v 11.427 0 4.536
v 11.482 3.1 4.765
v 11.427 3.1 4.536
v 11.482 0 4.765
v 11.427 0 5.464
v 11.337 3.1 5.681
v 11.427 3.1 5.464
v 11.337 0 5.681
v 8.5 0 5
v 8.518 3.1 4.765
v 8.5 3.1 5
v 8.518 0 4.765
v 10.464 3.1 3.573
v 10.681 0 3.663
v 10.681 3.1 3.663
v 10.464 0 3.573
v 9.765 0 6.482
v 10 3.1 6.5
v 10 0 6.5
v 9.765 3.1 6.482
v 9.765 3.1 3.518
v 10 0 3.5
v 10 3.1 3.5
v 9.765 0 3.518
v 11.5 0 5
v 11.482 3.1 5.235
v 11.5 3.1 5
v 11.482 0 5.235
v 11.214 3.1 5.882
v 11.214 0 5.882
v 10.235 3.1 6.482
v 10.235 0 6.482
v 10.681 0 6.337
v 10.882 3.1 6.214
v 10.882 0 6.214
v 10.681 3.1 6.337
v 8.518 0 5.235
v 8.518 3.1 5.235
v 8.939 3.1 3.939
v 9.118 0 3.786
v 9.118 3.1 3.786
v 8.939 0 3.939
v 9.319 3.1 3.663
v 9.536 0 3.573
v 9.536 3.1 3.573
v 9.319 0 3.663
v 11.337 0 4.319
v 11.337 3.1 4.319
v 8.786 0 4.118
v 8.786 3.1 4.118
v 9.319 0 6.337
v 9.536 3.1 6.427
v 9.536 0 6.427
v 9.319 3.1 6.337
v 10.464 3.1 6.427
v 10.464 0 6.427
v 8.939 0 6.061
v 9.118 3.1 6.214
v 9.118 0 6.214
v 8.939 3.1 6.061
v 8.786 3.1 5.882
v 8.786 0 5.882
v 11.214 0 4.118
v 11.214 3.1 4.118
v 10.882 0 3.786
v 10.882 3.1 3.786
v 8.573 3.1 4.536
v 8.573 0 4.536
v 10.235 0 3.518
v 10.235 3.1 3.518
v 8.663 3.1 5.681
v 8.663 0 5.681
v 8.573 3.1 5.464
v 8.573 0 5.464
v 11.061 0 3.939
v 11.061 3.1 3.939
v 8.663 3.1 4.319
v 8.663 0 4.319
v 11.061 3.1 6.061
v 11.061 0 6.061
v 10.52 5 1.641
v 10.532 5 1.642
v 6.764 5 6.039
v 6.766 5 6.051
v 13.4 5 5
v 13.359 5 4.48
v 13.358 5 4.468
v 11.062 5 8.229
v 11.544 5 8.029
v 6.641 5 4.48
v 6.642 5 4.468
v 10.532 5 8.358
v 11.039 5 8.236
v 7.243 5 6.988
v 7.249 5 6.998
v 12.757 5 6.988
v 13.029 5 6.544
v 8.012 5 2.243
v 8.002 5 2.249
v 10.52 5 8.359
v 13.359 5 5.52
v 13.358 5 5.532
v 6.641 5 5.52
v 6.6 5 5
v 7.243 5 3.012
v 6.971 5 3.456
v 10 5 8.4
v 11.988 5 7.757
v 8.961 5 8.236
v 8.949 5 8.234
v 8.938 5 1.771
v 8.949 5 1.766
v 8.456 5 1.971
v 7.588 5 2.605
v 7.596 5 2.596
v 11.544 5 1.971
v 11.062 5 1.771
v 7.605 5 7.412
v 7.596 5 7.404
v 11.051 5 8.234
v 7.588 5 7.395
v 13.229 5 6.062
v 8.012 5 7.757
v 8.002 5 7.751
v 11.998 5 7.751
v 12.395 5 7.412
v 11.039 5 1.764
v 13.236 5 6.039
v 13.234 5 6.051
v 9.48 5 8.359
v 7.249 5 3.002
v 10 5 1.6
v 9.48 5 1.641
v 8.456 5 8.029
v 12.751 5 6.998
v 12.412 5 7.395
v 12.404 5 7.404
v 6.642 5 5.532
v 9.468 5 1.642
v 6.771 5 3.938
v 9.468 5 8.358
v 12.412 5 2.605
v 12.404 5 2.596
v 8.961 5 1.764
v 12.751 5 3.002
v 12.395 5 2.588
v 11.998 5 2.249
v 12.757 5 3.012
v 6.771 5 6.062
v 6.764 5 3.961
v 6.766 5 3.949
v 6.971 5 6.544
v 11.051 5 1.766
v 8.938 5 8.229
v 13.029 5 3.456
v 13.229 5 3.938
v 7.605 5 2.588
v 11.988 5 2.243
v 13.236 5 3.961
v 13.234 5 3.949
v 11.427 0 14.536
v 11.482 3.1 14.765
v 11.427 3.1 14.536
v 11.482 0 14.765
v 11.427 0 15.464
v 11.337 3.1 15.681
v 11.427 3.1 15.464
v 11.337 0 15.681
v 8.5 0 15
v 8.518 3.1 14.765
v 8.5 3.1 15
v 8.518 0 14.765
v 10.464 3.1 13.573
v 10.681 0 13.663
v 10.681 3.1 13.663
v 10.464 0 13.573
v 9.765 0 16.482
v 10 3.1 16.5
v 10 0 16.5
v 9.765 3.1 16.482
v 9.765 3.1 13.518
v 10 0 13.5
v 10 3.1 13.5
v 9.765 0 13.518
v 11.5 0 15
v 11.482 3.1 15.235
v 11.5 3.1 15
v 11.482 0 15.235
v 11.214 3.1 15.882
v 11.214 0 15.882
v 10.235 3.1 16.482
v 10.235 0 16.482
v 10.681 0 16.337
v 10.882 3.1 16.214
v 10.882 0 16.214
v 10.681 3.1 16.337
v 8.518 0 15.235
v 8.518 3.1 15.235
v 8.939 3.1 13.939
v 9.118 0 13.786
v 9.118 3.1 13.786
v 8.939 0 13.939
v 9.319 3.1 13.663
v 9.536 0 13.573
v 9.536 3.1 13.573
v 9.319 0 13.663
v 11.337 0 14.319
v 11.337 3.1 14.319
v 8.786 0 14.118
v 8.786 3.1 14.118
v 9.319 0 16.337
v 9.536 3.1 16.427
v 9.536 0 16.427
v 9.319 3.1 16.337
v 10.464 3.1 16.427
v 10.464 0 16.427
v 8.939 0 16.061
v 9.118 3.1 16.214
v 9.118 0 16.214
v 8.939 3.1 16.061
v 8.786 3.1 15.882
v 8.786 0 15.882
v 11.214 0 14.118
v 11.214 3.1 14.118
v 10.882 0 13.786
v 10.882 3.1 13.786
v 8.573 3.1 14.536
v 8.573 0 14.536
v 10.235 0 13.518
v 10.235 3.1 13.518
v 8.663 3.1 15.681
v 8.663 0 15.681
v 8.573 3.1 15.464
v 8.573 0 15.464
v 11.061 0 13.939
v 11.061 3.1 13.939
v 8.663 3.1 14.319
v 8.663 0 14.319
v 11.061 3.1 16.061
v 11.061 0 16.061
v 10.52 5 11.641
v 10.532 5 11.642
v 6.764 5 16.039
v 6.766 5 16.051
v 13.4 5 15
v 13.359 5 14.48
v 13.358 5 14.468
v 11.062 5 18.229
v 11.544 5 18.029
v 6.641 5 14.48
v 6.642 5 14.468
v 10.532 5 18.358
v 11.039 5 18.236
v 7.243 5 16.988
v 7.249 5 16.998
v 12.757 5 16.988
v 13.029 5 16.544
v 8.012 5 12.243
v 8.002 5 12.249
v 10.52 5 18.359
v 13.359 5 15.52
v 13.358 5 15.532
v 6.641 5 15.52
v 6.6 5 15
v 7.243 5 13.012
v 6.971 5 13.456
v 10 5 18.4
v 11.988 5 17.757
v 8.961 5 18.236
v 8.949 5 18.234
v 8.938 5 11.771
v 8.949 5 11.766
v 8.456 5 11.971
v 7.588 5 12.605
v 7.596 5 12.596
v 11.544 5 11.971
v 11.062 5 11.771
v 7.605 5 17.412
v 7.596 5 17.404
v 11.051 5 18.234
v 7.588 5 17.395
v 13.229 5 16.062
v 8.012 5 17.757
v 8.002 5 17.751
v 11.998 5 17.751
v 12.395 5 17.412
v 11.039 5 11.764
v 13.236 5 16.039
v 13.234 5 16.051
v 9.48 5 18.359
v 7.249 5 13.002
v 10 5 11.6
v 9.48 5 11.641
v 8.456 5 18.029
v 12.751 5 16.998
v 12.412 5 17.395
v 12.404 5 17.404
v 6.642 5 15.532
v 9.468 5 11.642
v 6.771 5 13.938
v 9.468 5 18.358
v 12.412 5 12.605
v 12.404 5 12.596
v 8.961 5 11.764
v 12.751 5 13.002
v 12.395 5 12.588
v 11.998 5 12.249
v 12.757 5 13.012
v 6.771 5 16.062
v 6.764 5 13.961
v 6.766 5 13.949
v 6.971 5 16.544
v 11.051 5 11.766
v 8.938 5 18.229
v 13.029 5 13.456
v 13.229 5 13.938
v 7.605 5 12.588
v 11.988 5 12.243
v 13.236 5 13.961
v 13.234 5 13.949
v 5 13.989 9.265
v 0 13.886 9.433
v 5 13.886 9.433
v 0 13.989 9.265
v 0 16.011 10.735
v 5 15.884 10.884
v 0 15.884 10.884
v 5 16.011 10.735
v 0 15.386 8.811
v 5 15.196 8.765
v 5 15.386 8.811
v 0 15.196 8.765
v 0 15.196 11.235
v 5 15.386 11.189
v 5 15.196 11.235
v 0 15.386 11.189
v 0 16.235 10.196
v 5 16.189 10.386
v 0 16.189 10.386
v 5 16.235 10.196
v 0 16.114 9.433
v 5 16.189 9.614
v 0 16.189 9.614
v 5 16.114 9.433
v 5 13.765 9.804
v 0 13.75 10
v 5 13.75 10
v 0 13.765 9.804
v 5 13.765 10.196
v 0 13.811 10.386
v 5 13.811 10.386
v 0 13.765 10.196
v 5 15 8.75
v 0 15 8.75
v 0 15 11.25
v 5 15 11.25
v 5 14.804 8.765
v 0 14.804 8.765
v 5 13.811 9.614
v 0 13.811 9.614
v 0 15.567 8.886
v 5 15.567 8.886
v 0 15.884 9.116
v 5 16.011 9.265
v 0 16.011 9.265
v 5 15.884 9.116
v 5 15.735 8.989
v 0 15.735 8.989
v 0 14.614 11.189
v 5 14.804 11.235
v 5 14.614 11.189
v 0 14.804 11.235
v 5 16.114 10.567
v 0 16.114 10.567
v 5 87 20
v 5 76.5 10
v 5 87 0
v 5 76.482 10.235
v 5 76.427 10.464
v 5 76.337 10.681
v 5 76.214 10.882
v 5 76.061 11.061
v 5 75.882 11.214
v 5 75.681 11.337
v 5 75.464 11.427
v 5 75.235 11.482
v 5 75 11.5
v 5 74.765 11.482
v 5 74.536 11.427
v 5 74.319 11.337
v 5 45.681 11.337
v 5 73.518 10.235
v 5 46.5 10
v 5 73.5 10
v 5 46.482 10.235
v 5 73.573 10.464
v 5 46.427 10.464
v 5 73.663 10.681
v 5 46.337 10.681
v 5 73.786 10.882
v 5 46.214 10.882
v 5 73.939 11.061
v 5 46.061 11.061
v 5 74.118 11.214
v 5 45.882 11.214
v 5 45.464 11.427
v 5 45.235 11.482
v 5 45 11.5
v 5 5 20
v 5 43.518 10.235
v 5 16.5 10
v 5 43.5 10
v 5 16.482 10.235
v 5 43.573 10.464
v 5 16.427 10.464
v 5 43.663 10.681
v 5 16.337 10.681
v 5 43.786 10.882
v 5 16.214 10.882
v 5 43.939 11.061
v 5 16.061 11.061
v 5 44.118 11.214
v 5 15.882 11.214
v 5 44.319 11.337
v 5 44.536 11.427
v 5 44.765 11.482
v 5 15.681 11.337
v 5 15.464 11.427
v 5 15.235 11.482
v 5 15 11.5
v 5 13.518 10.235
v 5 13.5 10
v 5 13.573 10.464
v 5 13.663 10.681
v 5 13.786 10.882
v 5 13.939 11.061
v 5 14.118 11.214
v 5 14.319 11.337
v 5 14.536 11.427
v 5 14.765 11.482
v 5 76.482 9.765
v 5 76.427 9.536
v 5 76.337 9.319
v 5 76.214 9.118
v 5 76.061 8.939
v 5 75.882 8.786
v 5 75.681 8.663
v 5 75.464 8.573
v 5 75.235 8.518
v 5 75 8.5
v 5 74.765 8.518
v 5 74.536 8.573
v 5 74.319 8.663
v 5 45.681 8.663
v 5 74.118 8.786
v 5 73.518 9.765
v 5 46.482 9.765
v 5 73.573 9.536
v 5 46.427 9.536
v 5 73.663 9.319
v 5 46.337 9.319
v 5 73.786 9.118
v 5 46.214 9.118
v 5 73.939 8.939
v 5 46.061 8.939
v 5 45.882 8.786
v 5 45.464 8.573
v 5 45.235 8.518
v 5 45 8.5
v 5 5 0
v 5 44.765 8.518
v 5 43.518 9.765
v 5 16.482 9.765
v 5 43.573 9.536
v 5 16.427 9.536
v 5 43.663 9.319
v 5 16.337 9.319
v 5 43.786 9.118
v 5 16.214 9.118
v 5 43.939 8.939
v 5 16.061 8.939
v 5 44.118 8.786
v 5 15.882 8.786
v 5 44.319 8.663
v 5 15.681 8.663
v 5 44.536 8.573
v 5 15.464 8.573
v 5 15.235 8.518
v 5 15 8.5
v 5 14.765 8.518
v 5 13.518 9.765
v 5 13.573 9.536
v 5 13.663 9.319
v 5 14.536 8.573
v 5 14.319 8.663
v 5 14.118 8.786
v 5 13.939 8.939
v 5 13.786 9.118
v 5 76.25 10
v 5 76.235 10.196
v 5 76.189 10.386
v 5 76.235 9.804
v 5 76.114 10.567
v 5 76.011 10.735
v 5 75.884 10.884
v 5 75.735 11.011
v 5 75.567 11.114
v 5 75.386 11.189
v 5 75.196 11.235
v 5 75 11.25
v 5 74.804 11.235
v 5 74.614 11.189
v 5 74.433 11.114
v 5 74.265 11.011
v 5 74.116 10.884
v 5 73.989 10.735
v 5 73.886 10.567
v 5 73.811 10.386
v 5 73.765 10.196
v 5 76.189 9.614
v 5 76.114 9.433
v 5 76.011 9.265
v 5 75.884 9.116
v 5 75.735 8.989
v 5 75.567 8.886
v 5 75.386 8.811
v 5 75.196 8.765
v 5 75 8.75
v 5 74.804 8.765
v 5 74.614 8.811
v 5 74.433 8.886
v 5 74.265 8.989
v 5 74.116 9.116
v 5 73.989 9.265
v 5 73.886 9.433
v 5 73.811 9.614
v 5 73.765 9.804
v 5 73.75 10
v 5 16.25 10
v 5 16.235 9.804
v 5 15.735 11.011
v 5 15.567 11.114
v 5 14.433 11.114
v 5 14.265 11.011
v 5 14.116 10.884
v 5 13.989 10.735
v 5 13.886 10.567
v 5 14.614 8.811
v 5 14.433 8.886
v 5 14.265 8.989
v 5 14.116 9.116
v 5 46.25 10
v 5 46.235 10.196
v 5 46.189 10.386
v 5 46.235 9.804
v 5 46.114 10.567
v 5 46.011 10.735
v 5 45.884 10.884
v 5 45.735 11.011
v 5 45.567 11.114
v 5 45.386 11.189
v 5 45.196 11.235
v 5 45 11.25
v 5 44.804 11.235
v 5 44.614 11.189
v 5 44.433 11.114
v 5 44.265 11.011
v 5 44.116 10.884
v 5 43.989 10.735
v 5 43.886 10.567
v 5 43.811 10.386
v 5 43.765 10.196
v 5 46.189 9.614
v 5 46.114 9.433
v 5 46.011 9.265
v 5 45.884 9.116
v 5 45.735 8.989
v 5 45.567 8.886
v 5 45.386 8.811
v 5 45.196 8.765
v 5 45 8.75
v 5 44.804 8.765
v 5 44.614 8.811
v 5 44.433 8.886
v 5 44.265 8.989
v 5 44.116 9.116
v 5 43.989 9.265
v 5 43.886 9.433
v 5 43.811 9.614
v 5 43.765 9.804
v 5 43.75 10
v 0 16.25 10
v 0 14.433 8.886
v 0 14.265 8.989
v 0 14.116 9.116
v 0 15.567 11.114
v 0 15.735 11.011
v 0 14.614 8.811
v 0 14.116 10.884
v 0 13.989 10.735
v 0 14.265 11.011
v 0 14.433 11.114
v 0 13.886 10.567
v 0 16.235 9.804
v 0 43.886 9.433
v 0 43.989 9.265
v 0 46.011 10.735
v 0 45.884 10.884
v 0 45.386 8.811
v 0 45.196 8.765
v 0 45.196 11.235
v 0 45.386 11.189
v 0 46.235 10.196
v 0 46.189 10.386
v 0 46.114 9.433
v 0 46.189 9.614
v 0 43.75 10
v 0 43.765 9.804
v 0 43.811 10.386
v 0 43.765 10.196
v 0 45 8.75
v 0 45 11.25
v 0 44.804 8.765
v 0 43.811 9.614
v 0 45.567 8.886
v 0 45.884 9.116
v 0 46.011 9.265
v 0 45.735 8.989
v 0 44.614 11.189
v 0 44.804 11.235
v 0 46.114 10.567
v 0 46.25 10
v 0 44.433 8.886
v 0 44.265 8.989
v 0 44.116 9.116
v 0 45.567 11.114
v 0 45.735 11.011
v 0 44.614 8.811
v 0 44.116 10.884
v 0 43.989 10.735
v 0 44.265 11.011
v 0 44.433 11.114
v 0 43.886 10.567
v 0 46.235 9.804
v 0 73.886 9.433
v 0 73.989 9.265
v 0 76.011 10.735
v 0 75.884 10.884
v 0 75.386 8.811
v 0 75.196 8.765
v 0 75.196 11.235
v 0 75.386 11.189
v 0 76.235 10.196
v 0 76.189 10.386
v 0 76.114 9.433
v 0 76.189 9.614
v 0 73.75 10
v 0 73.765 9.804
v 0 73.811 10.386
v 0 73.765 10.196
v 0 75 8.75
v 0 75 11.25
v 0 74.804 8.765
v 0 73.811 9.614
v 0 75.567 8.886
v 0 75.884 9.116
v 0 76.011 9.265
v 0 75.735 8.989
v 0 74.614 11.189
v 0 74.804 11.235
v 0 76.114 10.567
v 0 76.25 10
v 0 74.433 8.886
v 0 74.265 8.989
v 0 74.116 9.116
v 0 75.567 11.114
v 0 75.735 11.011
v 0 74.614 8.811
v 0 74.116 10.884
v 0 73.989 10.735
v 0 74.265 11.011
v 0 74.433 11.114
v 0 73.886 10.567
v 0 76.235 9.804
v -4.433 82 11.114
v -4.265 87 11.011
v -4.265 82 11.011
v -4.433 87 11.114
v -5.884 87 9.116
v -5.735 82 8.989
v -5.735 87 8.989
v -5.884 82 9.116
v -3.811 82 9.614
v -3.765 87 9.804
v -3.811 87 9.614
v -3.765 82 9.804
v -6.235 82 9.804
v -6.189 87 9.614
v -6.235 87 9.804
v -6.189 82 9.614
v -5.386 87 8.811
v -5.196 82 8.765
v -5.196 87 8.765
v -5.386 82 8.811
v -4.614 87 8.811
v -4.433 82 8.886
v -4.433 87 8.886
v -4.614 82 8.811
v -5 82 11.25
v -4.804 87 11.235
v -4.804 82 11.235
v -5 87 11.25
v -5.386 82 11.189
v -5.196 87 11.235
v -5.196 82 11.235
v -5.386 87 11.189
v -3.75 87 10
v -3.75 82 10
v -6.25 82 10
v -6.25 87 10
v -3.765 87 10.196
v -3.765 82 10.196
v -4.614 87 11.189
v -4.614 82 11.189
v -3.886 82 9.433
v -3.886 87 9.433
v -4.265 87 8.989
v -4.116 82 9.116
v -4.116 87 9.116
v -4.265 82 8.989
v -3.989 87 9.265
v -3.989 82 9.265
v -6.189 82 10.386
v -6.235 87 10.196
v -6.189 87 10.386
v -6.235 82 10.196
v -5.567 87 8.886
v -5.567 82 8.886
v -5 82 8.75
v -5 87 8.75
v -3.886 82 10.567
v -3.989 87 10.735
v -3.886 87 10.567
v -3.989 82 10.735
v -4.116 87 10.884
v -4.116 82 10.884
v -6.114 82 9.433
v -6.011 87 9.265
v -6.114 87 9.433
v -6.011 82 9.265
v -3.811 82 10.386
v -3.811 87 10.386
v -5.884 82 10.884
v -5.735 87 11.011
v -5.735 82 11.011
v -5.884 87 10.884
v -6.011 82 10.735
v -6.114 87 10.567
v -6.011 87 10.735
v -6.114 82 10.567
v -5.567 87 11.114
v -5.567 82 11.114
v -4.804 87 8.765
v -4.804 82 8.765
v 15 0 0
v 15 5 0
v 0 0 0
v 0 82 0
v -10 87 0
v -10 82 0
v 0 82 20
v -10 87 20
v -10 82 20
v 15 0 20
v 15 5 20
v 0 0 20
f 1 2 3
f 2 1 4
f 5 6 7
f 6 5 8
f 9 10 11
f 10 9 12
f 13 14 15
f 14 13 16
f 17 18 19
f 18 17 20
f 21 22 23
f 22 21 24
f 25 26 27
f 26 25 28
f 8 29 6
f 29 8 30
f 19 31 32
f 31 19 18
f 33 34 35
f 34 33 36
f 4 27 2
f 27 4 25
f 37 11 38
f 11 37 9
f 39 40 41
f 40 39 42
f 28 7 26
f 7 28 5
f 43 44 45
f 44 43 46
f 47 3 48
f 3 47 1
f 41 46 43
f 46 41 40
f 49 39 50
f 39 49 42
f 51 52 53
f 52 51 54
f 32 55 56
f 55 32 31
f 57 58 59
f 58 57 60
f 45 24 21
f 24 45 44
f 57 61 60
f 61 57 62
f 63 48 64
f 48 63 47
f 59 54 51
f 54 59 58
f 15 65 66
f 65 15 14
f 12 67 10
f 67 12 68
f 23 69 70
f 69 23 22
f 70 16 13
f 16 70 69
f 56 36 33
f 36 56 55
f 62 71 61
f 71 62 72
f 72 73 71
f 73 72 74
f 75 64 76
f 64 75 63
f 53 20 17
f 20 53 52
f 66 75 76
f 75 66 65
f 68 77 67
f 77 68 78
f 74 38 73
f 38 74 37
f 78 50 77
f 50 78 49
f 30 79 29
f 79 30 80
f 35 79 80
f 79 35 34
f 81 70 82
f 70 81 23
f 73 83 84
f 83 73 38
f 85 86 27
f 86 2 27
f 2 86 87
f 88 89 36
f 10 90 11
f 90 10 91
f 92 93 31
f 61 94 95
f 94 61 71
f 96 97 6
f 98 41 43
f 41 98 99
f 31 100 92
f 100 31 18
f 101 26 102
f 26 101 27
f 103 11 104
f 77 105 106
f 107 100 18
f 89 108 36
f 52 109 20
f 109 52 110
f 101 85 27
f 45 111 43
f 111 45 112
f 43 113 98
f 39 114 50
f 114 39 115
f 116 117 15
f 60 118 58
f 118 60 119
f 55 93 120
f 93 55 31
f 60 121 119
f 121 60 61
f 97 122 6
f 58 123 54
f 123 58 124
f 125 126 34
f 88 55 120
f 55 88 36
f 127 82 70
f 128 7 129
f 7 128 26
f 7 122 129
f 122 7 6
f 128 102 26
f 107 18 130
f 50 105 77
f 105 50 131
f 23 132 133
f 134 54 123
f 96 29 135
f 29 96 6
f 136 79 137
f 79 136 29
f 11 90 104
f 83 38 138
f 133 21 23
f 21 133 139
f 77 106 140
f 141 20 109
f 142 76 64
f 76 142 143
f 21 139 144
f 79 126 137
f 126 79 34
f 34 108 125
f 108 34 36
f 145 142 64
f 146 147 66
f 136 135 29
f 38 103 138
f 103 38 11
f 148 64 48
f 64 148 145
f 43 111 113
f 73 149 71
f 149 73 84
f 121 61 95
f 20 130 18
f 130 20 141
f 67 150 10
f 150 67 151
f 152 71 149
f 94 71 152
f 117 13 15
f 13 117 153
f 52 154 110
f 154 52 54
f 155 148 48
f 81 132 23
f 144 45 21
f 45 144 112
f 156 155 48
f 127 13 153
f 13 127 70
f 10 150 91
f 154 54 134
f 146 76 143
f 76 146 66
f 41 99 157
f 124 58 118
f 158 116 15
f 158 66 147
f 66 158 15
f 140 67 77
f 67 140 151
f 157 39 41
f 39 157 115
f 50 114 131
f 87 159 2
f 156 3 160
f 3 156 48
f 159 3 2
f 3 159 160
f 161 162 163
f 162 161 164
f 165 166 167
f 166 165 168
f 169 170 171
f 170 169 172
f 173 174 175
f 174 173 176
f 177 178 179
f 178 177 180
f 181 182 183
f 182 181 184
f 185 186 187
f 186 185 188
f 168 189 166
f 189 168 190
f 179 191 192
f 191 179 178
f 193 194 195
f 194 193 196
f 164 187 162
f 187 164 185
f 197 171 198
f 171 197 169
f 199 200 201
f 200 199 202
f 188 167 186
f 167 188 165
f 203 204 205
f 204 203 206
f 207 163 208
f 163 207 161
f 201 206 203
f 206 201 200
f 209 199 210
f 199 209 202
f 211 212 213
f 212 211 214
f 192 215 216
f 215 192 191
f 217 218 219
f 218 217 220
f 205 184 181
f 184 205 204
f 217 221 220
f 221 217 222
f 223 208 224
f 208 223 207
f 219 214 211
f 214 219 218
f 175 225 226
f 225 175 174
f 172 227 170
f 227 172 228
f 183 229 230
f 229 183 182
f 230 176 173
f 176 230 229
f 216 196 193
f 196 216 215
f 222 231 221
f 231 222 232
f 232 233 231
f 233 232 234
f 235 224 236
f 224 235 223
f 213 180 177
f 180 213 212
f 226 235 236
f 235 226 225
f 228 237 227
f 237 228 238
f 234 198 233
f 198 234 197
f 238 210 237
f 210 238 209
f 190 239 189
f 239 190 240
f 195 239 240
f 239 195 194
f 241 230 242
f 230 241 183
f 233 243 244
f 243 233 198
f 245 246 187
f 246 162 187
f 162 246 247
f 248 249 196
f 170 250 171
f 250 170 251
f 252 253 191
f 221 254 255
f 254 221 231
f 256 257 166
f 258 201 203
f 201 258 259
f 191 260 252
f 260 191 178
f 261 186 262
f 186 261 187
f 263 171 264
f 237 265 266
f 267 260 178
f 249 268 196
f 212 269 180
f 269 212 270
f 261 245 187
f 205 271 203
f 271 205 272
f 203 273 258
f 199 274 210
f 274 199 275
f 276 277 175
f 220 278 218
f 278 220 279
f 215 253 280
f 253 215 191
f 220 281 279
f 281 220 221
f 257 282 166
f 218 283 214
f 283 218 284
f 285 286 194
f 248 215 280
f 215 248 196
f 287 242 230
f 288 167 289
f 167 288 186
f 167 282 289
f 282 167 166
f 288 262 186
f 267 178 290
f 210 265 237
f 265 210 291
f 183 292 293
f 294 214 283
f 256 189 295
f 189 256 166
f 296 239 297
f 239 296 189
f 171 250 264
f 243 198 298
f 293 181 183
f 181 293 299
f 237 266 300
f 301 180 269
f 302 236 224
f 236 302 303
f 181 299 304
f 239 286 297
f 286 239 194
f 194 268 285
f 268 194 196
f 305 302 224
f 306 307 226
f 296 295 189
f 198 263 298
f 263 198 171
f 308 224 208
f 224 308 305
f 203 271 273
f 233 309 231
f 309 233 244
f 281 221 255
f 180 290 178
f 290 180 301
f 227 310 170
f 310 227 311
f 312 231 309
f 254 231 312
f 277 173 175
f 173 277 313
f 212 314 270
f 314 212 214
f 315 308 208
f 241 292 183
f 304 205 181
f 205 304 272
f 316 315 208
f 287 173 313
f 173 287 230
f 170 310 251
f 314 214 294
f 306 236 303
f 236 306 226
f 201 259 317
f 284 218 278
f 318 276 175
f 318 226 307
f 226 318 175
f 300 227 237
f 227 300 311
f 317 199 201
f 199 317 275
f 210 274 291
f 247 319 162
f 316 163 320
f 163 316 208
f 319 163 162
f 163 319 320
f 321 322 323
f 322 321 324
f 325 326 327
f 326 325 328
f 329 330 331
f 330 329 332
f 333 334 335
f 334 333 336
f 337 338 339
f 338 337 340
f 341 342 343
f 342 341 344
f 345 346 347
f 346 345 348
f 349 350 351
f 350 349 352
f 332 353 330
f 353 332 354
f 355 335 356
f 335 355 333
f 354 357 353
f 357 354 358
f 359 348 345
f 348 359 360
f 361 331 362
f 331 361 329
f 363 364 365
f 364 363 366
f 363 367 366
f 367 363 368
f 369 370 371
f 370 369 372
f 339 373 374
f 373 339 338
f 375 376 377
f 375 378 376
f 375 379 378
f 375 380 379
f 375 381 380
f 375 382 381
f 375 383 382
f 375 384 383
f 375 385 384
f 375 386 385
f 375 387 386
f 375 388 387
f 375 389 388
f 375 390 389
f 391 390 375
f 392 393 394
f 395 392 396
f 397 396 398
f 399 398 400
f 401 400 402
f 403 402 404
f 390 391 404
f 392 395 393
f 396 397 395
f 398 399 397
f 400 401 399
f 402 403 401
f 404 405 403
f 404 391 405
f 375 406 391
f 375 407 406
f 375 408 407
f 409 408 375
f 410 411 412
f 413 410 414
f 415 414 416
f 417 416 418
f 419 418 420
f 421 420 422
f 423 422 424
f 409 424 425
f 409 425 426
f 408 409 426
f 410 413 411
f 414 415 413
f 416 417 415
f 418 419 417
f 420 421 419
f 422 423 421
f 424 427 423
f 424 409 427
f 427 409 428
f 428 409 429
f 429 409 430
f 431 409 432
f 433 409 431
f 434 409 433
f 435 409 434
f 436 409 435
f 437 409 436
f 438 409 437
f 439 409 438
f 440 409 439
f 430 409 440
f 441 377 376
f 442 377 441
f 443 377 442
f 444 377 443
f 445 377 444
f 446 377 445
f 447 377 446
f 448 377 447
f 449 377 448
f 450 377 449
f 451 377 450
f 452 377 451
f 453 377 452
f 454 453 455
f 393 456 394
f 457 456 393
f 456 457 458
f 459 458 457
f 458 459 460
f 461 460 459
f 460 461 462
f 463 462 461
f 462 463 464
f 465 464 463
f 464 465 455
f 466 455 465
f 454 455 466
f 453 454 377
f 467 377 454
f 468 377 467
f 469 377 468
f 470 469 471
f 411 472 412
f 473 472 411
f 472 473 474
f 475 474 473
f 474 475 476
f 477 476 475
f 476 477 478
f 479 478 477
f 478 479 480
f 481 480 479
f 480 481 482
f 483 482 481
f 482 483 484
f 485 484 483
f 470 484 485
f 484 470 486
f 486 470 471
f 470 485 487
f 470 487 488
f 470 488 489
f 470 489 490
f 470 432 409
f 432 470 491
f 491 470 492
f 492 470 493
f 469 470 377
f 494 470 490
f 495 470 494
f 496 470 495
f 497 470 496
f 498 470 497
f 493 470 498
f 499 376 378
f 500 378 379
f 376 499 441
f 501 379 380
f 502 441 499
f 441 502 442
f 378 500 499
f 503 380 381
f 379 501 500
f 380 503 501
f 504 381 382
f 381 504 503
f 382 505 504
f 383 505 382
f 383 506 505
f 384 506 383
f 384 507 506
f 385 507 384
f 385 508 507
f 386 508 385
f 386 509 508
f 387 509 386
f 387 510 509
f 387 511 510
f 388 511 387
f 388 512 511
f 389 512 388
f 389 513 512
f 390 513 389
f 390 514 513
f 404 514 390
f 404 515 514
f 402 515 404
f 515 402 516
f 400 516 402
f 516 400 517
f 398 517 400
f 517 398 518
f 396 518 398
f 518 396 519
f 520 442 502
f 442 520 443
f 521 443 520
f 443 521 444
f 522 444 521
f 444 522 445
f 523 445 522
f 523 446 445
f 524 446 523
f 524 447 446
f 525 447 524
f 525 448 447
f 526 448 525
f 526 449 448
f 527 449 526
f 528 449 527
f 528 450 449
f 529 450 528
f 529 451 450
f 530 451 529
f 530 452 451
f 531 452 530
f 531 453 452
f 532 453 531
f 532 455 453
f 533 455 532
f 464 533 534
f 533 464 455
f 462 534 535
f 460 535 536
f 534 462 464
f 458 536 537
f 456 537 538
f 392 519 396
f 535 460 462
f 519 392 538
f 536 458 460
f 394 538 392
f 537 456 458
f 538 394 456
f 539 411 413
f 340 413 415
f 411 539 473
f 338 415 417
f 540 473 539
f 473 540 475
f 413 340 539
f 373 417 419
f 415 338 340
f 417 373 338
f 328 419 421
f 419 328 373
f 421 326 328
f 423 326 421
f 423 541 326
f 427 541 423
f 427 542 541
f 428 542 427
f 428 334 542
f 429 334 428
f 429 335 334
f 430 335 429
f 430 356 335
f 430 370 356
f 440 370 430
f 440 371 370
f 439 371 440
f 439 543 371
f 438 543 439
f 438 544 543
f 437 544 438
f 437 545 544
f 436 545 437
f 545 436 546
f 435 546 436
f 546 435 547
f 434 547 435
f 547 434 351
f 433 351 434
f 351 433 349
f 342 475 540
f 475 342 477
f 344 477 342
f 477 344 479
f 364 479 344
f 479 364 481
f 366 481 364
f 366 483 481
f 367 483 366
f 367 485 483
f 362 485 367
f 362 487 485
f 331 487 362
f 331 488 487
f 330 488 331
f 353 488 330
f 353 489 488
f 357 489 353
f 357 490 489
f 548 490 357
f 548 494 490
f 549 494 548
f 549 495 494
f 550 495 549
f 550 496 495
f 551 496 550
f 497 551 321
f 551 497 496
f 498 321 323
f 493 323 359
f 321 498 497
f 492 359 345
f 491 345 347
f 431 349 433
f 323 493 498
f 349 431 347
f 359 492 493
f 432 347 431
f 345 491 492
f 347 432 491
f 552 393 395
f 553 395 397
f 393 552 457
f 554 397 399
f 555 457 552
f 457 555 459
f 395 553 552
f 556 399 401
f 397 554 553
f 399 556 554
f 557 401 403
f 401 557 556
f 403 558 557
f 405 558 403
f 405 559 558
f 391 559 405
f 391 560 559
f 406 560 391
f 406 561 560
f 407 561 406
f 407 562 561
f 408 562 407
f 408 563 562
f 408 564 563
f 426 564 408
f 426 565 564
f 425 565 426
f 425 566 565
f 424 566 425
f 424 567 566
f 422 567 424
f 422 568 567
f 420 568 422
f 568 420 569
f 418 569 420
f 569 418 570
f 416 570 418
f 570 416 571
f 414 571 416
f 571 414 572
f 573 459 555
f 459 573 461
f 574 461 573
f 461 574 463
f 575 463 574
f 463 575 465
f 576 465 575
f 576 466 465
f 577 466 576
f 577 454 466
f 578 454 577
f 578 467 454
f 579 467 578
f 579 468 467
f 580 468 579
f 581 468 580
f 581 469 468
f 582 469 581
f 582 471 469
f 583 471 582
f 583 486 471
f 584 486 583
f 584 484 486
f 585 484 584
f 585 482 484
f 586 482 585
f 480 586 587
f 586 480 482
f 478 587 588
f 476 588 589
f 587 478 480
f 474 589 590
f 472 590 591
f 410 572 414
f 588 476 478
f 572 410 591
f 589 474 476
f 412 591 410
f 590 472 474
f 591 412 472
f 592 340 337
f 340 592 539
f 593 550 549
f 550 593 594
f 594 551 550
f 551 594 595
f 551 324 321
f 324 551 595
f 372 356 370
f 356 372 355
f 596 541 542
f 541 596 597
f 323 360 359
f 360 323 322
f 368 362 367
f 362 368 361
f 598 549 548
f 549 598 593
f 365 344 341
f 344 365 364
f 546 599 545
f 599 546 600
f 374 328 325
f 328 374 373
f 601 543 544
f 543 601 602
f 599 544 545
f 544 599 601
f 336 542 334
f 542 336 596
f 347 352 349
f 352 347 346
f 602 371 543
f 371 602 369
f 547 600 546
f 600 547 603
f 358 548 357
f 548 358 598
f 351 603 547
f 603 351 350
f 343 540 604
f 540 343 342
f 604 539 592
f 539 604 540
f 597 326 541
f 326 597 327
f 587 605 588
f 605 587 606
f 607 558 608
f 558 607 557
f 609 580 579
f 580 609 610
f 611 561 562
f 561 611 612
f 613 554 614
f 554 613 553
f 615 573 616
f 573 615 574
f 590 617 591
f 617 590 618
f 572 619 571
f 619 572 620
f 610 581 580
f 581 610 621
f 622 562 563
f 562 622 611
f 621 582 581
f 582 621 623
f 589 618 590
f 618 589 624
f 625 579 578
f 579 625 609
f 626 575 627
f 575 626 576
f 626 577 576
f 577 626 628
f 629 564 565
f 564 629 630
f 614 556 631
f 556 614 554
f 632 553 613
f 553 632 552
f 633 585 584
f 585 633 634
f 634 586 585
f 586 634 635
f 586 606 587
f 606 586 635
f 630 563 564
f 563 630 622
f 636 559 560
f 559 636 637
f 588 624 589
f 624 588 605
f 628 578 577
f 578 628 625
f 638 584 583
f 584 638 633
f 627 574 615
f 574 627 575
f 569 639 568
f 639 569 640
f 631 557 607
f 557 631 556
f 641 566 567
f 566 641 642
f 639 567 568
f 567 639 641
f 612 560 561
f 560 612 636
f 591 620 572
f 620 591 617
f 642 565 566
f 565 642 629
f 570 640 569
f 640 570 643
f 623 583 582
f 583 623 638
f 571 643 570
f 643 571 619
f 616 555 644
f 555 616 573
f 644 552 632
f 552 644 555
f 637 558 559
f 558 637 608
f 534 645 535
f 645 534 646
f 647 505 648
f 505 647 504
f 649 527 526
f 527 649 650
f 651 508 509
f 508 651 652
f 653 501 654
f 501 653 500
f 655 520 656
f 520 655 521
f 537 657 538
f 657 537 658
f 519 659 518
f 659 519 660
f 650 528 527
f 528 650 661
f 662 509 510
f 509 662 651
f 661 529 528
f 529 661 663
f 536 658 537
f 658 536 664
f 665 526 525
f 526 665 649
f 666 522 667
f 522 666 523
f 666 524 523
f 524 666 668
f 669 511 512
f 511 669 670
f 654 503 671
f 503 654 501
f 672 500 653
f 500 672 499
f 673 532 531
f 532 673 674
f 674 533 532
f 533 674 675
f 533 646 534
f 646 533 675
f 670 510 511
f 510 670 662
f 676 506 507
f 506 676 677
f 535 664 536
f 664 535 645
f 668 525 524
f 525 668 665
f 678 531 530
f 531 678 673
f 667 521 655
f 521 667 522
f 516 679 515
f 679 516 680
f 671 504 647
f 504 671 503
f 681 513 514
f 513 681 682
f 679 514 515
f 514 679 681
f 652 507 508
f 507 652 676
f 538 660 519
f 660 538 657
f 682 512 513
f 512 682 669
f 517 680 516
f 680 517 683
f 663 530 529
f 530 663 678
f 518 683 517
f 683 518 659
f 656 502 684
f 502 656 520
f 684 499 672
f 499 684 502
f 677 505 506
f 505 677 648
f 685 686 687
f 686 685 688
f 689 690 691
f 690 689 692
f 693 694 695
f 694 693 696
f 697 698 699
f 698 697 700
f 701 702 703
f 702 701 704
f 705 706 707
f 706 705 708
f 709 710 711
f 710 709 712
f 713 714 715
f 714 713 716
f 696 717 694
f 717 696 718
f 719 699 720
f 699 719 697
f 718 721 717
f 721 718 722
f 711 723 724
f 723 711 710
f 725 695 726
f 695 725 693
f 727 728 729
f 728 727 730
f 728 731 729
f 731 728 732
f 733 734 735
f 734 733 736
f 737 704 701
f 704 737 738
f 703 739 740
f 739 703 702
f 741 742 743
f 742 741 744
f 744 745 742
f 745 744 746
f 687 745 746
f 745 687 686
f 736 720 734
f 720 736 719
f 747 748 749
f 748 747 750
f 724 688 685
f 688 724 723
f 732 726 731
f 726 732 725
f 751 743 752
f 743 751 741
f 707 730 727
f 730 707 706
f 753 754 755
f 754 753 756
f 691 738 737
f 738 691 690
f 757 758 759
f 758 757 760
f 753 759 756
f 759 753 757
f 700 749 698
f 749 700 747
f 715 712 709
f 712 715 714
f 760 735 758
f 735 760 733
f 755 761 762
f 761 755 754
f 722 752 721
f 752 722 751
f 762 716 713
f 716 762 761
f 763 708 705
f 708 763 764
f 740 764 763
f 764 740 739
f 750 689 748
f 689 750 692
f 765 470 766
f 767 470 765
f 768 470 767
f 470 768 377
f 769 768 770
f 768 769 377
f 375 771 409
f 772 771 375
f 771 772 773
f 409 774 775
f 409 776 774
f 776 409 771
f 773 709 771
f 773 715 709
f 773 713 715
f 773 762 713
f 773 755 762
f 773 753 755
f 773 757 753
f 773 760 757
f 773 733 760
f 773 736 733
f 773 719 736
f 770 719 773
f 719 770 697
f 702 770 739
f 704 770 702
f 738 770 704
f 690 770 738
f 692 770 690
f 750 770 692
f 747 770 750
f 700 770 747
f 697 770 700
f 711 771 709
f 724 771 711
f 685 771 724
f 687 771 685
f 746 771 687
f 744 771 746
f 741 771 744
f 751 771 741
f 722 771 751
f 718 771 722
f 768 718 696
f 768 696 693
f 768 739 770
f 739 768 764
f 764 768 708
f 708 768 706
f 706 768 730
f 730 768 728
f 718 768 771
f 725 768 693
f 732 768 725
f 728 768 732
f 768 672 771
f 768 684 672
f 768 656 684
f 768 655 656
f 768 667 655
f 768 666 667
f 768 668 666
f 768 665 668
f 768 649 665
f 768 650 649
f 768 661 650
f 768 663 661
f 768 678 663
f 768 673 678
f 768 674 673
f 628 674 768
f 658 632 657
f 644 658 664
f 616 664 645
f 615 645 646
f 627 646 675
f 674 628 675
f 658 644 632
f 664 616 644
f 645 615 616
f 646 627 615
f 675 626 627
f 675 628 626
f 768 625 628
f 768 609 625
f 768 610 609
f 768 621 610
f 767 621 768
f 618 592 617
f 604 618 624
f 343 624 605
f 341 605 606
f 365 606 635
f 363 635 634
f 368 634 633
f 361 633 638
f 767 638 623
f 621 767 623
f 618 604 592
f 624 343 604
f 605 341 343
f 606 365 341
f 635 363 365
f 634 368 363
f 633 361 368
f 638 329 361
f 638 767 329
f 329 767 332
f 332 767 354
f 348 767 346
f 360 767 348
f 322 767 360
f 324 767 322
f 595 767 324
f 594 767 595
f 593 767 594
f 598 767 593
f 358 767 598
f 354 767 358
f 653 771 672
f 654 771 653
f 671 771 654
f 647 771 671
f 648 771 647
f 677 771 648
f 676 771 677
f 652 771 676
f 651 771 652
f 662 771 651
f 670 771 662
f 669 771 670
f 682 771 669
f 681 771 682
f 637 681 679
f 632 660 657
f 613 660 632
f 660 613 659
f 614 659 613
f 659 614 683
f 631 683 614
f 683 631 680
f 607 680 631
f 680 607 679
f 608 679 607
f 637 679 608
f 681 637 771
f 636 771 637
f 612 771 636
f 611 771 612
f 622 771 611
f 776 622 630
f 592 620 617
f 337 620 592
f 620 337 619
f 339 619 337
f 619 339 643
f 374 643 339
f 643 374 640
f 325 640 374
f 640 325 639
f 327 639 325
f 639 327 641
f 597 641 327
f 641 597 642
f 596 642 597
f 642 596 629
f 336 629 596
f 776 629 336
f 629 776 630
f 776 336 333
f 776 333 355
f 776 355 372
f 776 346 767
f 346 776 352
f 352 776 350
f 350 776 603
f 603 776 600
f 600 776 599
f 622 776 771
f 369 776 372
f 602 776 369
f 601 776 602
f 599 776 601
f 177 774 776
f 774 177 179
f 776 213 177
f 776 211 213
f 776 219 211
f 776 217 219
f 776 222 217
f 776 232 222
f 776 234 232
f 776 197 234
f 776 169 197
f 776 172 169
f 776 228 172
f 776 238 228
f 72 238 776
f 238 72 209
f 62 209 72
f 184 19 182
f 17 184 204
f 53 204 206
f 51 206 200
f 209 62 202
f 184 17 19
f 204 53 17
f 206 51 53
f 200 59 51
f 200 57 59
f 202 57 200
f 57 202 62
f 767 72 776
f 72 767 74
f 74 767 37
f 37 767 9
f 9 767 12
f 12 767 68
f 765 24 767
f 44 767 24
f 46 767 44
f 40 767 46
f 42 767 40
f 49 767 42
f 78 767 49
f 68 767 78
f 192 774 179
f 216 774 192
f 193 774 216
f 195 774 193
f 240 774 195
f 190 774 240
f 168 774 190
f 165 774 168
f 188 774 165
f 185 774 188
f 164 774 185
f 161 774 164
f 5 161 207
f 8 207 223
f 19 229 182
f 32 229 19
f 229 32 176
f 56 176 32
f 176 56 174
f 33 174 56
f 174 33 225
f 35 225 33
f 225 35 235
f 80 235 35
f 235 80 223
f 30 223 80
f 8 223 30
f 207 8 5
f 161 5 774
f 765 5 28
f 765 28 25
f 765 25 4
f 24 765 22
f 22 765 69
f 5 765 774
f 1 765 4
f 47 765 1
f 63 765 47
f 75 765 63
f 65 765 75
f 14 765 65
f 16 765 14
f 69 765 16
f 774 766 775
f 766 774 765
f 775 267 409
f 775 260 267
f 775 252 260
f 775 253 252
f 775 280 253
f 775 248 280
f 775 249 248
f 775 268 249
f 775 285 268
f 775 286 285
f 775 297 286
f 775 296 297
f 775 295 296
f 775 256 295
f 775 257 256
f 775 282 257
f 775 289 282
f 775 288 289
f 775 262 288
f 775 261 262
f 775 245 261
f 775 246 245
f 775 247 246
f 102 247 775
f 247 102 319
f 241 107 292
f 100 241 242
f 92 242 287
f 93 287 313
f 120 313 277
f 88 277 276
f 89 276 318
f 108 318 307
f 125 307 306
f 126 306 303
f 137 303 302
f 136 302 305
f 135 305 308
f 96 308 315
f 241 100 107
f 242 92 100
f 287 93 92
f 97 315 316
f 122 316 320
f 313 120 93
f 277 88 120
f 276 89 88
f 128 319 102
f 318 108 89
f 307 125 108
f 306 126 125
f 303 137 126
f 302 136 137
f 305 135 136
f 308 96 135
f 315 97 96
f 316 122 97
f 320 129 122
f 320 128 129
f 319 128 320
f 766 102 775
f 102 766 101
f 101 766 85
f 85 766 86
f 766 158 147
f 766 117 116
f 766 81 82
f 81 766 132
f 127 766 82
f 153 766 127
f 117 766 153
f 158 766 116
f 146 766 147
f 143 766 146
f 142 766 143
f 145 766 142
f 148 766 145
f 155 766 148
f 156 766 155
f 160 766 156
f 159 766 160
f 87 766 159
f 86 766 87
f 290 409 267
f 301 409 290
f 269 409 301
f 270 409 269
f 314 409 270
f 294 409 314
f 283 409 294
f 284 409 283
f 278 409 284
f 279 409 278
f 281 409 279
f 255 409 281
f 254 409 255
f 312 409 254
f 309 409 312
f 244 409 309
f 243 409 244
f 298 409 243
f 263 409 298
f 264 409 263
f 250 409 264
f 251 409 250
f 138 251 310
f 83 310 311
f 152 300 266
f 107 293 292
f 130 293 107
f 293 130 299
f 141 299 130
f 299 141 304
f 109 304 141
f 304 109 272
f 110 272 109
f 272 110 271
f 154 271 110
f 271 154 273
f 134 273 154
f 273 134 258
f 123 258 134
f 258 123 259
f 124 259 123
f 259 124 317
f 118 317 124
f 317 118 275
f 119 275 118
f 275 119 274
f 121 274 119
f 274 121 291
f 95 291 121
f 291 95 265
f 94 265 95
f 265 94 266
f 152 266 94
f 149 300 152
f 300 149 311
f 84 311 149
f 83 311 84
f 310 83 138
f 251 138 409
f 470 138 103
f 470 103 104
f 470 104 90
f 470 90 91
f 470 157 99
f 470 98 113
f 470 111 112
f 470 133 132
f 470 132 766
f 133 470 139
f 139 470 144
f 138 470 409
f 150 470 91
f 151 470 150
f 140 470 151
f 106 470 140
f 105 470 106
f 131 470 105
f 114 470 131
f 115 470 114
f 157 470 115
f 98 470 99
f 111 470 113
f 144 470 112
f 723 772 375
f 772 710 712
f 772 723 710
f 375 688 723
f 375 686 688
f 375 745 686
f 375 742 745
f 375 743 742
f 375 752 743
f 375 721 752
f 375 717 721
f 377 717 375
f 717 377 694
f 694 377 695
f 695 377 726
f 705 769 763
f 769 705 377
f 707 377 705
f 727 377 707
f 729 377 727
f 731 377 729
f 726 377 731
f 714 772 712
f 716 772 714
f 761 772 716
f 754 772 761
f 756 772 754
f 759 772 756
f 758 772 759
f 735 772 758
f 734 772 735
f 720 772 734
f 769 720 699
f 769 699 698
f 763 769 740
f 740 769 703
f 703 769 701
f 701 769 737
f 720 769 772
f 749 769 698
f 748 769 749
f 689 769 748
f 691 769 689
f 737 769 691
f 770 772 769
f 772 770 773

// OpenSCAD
h = 90;
thickn = 3;
ws = 5;
feet_l = 10;
w = 20;

wood_screw_l = 16;
wood_screw_d = 3;
wood_screw_head = 2;

module screw(sunk = true, grip = false) {
	$fn = $preview ? 10 : 40;
	translate([0, 0, sunk ? -(wood_screw_head-.1) : 0]) {
		translate([0,0,-wood_screw_l])
			cylinder(h = wood_screw_l, d = grip ? wood_screw_d-.5 : wood_screw_d);
		cylinder(h = wood_screw_head, d1 = wood_screw_d, d2 = wood_screw_d + 2*wood_screw_head);
	}
}

module holder_2d() {
	square([ws, h-thickn]);
	square([ws + feet_l, ws]);
	translate([ws, (h-thickn)-ws])
		mirror([1, 0])
			square([ws + feet_l, ws]);
}


difference() {
	linear_extrude(w) {
		holder_2d();
	}
	
	step = w / 2;
	for(z = [step/2 : step : w-1]) {
		translate([ws + feet_l/2, ws, z]) rotate([-90, 0, 0]) screw();
	}
	translate([0, 0, w/2]) {
		step = h / 3;
		for( y = [step/2 : step : h-1] ){
			translate([ws, y, 0])
				rotate([0, 90, 0]) screw(sunk = false, grip = true);
		}
		translate([-feet_l/2, h, 0])
			rotate([-90, 0, 0]) screw(sunk = false, grip = true);
	}
}
